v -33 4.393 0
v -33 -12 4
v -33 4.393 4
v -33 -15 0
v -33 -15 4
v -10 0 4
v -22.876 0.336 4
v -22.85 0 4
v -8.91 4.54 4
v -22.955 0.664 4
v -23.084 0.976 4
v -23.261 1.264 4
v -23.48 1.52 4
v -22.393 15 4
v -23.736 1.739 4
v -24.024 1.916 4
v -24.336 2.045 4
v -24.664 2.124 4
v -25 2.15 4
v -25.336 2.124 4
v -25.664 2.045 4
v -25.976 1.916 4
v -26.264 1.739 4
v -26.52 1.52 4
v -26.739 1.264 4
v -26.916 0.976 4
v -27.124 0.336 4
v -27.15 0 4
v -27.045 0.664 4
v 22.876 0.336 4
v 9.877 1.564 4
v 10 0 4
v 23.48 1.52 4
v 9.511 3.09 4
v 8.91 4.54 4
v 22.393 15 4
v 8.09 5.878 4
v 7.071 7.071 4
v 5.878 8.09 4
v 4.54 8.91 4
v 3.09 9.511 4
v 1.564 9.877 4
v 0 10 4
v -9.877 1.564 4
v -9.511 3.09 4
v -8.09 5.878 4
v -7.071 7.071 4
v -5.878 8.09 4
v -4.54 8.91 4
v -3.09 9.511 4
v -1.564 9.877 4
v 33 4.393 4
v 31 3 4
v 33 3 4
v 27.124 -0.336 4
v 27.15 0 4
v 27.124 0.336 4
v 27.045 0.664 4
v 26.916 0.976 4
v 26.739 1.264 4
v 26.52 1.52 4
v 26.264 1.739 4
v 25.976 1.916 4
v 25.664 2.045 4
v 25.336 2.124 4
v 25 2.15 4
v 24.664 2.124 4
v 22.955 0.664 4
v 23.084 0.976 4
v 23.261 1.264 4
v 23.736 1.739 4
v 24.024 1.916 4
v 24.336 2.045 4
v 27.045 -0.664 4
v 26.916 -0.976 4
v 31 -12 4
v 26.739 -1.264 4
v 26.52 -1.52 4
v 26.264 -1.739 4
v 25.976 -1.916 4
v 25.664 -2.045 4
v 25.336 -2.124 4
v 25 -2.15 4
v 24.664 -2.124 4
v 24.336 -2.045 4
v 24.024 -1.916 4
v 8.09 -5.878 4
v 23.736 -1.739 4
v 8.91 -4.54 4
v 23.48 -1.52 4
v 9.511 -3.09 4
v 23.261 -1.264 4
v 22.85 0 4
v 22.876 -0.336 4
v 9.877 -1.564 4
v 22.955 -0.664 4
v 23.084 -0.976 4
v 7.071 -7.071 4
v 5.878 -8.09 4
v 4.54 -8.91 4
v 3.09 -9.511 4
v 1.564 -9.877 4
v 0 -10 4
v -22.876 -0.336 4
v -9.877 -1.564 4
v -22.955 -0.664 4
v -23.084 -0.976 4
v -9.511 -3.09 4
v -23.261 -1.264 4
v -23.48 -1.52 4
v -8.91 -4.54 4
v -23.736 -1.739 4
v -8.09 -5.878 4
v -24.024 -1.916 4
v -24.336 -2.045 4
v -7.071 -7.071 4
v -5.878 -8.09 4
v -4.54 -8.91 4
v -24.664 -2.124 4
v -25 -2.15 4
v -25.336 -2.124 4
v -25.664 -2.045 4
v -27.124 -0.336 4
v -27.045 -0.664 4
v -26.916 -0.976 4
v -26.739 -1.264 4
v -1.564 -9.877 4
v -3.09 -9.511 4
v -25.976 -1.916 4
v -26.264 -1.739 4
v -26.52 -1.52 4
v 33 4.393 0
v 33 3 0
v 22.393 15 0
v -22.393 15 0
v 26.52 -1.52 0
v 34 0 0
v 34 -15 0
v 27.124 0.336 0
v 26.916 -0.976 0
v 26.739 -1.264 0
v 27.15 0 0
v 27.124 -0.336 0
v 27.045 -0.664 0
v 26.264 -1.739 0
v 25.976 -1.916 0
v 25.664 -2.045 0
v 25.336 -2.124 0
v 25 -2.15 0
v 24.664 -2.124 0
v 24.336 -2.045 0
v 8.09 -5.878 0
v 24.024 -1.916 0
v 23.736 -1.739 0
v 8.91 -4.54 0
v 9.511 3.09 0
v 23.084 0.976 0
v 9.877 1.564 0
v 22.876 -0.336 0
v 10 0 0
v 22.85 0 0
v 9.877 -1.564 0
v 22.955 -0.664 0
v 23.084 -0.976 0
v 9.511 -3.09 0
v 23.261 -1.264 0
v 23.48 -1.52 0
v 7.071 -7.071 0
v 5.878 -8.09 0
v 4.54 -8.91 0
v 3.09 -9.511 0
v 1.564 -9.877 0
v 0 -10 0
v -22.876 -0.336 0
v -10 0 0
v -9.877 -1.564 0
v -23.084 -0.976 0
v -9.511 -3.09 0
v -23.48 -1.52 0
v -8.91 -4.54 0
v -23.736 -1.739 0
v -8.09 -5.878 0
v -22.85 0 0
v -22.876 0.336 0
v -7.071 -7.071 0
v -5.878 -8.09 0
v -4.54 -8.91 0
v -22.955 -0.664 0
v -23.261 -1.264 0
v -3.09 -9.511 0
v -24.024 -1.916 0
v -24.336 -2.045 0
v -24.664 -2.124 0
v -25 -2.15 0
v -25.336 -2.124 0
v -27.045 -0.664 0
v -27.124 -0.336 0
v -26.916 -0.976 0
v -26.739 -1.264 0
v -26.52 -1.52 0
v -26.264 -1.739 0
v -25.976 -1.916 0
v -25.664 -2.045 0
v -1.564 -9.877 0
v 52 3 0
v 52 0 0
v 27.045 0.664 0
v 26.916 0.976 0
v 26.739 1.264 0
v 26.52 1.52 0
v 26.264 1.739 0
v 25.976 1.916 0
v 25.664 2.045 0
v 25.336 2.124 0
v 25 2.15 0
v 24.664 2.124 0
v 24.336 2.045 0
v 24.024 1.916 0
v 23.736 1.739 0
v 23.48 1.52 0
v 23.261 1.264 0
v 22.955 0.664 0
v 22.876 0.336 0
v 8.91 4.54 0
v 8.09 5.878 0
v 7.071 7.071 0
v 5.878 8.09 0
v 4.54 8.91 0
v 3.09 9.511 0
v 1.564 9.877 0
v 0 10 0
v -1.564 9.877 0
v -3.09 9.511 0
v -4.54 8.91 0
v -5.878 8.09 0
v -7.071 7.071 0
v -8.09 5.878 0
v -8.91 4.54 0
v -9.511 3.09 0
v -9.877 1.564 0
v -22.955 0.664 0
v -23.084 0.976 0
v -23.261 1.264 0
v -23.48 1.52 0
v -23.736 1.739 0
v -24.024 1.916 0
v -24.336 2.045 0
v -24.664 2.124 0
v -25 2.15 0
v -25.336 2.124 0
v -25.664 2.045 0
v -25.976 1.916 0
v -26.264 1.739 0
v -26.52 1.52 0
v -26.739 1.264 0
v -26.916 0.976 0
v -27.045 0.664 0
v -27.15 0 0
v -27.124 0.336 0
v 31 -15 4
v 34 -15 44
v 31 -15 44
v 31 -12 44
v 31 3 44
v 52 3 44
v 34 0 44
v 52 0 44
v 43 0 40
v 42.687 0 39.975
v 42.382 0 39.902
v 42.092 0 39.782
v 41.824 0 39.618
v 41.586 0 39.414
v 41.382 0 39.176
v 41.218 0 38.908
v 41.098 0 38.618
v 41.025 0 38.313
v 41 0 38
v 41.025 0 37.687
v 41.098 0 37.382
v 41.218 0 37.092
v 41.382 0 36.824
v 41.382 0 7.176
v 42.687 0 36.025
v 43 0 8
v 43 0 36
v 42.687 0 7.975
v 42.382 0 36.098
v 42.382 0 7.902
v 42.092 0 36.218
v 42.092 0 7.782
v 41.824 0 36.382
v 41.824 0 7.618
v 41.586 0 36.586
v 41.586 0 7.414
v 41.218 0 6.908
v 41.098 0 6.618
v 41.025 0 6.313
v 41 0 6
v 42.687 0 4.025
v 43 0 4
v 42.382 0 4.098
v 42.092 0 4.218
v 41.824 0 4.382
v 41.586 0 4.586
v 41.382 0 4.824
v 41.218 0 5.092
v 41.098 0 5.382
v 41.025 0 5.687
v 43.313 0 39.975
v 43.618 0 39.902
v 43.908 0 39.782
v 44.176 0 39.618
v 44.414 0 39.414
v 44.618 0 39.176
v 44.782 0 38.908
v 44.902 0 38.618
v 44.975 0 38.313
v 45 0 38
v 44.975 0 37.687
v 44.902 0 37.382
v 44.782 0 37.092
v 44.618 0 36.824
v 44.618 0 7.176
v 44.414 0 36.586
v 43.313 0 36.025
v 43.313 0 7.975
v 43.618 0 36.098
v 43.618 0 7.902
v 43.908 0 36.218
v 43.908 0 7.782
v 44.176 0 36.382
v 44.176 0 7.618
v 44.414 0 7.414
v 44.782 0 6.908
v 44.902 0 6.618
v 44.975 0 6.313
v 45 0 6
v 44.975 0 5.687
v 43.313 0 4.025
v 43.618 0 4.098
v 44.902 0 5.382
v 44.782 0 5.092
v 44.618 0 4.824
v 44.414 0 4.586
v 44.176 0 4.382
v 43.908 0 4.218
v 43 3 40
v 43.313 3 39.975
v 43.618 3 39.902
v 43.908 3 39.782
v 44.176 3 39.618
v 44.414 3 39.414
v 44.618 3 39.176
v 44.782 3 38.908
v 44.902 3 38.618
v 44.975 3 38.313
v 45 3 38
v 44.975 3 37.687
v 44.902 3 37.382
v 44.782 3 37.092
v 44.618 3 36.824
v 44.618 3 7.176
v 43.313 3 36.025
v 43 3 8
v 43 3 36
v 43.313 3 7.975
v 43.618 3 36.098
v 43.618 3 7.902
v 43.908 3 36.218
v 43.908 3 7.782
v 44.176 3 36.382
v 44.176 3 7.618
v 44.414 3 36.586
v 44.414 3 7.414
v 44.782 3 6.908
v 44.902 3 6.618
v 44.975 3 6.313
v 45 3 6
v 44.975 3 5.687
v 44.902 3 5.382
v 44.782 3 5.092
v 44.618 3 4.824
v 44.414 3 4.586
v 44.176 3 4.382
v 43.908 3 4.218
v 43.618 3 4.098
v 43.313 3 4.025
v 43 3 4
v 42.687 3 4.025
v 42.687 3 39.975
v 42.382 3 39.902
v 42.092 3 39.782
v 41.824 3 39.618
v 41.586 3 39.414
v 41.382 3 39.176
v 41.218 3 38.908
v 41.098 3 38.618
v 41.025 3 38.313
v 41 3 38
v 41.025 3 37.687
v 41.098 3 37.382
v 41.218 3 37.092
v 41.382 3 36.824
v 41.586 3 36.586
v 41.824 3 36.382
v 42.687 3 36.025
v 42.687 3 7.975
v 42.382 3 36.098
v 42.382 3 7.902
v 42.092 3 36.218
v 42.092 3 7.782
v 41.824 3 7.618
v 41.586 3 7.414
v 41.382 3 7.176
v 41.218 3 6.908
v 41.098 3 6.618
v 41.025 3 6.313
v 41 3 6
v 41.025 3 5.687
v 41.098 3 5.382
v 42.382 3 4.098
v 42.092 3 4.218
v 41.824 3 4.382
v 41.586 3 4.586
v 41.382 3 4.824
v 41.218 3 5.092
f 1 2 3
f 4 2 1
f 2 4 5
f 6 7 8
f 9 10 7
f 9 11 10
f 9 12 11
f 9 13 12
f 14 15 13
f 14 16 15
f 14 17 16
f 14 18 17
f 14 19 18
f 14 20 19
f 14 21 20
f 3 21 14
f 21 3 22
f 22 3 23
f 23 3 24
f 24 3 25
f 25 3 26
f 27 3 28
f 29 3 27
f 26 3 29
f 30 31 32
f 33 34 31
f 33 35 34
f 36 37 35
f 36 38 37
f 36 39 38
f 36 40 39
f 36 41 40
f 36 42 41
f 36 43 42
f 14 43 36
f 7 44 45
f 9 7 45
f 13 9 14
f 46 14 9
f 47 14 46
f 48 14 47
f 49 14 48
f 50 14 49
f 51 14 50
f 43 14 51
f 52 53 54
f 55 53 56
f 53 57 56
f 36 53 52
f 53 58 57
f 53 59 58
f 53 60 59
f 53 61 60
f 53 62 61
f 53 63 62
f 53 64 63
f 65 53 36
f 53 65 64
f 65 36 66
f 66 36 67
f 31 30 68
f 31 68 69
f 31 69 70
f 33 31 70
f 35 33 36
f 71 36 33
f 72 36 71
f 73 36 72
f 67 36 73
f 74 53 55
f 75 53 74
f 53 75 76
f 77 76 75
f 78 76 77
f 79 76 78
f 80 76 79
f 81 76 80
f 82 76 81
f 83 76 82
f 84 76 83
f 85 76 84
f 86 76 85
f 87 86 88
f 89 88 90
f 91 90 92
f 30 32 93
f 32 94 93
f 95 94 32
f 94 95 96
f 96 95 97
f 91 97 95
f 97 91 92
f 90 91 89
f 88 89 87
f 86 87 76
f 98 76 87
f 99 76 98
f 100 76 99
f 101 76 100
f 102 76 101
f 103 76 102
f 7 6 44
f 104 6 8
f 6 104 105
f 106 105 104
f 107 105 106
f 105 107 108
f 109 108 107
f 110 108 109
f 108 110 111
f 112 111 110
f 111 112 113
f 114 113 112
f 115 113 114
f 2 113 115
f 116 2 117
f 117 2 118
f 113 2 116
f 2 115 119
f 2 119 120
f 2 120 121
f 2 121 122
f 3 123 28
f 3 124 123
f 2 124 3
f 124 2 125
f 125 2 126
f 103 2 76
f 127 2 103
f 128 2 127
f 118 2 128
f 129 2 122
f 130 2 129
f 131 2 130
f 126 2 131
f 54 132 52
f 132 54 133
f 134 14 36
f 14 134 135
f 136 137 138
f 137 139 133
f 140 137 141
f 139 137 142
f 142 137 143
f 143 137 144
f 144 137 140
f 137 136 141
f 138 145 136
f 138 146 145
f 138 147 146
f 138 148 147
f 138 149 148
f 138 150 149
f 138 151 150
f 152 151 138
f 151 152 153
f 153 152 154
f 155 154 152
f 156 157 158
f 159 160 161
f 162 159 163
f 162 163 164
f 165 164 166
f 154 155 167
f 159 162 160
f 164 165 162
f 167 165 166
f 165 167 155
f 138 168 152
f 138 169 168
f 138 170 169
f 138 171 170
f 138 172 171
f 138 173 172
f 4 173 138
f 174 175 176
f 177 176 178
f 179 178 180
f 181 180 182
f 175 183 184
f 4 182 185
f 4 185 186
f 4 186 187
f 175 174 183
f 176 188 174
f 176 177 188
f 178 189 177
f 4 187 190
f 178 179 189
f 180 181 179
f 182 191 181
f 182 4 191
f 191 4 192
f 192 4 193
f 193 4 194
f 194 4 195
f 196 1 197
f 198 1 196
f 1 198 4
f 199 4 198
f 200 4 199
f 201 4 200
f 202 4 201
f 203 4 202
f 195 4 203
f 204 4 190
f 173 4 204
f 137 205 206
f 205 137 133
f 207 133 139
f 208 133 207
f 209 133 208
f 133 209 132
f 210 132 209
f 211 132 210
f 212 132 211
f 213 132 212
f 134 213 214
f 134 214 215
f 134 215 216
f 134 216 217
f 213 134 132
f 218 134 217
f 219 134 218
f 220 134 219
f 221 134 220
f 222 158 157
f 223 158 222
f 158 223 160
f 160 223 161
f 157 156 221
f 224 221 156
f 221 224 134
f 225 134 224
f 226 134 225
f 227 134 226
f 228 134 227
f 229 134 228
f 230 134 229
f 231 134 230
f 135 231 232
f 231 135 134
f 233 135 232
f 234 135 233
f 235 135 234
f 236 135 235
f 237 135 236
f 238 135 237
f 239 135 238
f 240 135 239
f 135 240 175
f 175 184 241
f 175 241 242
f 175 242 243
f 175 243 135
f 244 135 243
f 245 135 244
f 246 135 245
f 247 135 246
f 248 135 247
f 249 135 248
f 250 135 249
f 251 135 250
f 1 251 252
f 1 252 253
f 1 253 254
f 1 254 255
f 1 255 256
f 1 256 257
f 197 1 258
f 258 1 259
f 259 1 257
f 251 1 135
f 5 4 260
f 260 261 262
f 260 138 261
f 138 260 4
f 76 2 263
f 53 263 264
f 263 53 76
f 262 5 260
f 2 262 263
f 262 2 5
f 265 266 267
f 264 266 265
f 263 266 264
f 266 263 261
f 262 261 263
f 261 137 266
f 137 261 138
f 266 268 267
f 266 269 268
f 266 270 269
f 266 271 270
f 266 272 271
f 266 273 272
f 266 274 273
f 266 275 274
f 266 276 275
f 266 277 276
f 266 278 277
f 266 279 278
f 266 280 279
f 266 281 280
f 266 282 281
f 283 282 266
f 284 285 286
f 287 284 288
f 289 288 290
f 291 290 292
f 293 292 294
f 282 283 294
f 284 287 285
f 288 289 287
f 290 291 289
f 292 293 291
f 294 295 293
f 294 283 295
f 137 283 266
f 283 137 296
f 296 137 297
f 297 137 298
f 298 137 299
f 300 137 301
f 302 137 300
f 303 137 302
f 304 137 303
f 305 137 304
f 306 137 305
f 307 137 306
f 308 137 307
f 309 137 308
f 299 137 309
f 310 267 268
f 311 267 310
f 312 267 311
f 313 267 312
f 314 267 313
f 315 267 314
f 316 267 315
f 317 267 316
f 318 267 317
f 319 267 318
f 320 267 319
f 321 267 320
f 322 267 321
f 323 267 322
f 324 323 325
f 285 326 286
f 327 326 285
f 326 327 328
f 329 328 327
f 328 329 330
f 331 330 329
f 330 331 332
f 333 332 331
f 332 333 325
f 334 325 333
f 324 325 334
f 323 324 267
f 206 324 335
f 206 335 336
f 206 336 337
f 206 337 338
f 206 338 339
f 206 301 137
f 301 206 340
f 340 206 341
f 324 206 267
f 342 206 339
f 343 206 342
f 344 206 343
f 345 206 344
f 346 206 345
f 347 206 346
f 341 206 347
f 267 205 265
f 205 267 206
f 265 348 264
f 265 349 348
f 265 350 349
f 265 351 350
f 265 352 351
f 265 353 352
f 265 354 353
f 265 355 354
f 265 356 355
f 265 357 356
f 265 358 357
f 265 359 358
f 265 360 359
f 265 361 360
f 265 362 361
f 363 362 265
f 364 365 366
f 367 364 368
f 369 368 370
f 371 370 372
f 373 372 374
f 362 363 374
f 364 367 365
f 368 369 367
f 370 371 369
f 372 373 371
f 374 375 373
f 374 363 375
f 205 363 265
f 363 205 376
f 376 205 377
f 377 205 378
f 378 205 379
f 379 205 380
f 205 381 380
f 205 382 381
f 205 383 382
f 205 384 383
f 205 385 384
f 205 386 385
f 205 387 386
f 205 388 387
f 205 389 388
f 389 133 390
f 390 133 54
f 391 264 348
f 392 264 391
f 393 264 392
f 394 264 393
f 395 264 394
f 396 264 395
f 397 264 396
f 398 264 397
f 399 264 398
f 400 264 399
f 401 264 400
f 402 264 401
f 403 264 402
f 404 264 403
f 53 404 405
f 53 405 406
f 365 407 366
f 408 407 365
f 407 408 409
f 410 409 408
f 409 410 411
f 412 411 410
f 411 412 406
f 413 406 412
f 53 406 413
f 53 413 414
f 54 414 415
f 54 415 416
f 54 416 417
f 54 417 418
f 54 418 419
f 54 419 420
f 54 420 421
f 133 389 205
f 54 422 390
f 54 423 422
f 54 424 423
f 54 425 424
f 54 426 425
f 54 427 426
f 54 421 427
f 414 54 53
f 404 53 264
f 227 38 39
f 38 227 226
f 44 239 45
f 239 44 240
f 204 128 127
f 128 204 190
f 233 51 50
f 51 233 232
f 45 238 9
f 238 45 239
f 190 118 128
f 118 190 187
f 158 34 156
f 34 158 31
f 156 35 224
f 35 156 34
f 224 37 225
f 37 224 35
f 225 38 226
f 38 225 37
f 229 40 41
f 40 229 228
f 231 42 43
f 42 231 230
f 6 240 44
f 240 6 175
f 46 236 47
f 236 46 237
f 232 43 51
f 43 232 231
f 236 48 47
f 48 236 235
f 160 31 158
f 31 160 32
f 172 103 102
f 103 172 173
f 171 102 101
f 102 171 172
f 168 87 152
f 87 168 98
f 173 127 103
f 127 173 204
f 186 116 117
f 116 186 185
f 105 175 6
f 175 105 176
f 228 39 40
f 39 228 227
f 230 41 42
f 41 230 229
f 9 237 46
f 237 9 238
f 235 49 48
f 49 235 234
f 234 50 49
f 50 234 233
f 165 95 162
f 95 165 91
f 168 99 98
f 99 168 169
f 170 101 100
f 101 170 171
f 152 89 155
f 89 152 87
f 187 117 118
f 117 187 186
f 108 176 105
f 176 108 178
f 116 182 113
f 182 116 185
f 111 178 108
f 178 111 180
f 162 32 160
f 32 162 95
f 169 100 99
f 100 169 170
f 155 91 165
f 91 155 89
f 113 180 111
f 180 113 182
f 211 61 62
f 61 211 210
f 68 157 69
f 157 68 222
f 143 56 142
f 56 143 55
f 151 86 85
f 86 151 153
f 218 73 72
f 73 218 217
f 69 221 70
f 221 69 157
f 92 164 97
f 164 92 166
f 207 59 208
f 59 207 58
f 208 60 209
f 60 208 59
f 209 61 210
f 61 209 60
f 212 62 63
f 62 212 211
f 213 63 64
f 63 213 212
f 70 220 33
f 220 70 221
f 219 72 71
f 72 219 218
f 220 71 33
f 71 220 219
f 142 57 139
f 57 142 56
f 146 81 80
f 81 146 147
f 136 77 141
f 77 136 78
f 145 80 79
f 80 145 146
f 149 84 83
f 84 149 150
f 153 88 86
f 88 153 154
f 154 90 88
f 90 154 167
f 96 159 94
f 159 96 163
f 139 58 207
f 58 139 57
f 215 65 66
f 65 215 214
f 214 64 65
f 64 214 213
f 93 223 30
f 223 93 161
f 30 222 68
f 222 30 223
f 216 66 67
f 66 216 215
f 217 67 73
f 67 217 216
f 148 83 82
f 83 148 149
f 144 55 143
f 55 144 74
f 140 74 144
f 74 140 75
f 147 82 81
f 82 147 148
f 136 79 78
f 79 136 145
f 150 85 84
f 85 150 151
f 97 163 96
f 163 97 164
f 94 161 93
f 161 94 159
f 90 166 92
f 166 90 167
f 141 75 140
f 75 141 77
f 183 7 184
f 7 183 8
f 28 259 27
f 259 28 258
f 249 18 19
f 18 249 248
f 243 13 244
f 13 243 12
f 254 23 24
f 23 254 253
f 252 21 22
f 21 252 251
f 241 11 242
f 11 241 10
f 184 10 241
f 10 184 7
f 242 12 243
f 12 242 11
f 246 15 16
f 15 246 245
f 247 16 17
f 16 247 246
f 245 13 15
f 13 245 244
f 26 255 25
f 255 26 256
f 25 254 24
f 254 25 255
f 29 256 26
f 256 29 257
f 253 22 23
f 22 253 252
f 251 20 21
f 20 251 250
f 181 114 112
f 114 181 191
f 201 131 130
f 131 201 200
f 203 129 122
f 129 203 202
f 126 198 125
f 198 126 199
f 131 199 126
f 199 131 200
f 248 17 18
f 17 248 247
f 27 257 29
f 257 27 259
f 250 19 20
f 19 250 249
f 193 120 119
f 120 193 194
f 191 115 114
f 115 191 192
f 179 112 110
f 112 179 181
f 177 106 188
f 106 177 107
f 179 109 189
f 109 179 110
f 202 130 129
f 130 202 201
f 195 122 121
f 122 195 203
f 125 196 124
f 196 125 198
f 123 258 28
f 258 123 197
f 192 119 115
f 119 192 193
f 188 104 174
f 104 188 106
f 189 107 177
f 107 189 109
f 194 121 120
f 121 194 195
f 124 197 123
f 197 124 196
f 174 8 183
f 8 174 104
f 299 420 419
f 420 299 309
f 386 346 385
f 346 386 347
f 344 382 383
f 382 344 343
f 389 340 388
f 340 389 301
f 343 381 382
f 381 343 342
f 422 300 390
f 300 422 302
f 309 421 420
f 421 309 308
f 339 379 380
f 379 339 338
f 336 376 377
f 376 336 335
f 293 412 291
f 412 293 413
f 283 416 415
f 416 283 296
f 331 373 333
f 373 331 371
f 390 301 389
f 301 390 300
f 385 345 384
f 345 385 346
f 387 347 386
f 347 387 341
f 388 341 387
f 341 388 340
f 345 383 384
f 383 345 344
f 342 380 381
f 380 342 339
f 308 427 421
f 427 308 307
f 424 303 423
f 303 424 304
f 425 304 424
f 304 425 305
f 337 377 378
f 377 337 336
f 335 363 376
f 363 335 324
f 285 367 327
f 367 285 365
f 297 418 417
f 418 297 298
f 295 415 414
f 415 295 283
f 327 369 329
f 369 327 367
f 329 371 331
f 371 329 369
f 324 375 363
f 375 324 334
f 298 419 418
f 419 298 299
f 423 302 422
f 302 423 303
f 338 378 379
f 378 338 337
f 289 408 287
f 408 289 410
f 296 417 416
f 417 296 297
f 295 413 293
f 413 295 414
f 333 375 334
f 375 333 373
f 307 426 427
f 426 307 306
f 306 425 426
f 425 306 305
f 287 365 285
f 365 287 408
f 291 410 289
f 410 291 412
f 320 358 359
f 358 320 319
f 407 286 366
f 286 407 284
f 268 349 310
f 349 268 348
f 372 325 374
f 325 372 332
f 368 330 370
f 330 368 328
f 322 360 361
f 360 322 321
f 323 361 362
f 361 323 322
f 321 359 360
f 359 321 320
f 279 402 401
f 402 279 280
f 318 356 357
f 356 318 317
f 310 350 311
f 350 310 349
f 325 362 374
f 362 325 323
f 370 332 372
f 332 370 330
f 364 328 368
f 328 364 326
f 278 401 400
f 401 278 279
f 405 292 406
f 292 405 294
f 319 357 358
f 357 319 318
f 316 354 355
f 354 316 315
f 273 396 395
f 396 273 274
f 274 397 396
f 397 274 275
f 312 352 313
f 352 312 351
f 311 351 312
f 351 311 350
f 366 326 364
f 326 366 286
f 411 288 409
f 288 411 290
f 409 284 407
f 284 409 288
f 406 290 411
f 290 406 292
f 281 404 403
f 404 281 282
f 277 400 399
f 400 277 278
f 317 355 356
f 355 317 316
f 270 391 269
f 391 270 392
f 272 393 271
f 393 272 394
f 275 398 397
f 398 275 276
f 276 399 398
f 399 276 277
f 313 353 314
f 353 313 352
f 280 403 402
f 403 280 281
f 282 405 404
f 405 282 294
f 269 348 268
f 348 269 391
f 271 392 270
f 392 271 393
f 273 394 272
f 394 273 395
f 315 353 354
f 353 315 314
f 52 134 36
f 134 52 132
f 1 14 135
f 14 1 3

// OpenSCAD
slop = 0.15;



module frame() {
    translate([0,0,4/2]) cube([66,30,4], center=true);
    translate([-66/2,-30/2+3,4]) rotate([90,0,0]) linear_extrude(3) polygon(points=[[66-2,0], [66-2,40], [0,0]]);
    translate([(66-2*2)/2,-30/2,0]) cube([3,30/2,40+4]);
    translate([(66-2*2)/2,0,0]) cube([18+3,3,40+4]);
}

difference() {
    frame();
    cylinder(d=20,h=5, $fn=40);
    translate([25,0,0]) cylinder(d=4+2*slop,h=5, $fn=40);
    translate([-25,0,0]) cylinder(d=4+2*slop,h=5, $fn=40);
    
    translate([(66-2*2+3*2)/2+18/2,-2,6]) rotate([-90,0,0]) cylinder(d=4,h=5,$fn=40);
    translate([(66-2*2+3*2)/2+18/2,-2,34+4]) rotate([-90,0,0]) cylinder(d=4,h=5,$fn=40);
    
    translate([66/2,30/2,0]) rotate([0,0,45]) cube([15,15,10],center=true);
    translate([-66/2,30/2,0]) rotate([0,0,-45]) cube([15,15,10],center=true);
}
